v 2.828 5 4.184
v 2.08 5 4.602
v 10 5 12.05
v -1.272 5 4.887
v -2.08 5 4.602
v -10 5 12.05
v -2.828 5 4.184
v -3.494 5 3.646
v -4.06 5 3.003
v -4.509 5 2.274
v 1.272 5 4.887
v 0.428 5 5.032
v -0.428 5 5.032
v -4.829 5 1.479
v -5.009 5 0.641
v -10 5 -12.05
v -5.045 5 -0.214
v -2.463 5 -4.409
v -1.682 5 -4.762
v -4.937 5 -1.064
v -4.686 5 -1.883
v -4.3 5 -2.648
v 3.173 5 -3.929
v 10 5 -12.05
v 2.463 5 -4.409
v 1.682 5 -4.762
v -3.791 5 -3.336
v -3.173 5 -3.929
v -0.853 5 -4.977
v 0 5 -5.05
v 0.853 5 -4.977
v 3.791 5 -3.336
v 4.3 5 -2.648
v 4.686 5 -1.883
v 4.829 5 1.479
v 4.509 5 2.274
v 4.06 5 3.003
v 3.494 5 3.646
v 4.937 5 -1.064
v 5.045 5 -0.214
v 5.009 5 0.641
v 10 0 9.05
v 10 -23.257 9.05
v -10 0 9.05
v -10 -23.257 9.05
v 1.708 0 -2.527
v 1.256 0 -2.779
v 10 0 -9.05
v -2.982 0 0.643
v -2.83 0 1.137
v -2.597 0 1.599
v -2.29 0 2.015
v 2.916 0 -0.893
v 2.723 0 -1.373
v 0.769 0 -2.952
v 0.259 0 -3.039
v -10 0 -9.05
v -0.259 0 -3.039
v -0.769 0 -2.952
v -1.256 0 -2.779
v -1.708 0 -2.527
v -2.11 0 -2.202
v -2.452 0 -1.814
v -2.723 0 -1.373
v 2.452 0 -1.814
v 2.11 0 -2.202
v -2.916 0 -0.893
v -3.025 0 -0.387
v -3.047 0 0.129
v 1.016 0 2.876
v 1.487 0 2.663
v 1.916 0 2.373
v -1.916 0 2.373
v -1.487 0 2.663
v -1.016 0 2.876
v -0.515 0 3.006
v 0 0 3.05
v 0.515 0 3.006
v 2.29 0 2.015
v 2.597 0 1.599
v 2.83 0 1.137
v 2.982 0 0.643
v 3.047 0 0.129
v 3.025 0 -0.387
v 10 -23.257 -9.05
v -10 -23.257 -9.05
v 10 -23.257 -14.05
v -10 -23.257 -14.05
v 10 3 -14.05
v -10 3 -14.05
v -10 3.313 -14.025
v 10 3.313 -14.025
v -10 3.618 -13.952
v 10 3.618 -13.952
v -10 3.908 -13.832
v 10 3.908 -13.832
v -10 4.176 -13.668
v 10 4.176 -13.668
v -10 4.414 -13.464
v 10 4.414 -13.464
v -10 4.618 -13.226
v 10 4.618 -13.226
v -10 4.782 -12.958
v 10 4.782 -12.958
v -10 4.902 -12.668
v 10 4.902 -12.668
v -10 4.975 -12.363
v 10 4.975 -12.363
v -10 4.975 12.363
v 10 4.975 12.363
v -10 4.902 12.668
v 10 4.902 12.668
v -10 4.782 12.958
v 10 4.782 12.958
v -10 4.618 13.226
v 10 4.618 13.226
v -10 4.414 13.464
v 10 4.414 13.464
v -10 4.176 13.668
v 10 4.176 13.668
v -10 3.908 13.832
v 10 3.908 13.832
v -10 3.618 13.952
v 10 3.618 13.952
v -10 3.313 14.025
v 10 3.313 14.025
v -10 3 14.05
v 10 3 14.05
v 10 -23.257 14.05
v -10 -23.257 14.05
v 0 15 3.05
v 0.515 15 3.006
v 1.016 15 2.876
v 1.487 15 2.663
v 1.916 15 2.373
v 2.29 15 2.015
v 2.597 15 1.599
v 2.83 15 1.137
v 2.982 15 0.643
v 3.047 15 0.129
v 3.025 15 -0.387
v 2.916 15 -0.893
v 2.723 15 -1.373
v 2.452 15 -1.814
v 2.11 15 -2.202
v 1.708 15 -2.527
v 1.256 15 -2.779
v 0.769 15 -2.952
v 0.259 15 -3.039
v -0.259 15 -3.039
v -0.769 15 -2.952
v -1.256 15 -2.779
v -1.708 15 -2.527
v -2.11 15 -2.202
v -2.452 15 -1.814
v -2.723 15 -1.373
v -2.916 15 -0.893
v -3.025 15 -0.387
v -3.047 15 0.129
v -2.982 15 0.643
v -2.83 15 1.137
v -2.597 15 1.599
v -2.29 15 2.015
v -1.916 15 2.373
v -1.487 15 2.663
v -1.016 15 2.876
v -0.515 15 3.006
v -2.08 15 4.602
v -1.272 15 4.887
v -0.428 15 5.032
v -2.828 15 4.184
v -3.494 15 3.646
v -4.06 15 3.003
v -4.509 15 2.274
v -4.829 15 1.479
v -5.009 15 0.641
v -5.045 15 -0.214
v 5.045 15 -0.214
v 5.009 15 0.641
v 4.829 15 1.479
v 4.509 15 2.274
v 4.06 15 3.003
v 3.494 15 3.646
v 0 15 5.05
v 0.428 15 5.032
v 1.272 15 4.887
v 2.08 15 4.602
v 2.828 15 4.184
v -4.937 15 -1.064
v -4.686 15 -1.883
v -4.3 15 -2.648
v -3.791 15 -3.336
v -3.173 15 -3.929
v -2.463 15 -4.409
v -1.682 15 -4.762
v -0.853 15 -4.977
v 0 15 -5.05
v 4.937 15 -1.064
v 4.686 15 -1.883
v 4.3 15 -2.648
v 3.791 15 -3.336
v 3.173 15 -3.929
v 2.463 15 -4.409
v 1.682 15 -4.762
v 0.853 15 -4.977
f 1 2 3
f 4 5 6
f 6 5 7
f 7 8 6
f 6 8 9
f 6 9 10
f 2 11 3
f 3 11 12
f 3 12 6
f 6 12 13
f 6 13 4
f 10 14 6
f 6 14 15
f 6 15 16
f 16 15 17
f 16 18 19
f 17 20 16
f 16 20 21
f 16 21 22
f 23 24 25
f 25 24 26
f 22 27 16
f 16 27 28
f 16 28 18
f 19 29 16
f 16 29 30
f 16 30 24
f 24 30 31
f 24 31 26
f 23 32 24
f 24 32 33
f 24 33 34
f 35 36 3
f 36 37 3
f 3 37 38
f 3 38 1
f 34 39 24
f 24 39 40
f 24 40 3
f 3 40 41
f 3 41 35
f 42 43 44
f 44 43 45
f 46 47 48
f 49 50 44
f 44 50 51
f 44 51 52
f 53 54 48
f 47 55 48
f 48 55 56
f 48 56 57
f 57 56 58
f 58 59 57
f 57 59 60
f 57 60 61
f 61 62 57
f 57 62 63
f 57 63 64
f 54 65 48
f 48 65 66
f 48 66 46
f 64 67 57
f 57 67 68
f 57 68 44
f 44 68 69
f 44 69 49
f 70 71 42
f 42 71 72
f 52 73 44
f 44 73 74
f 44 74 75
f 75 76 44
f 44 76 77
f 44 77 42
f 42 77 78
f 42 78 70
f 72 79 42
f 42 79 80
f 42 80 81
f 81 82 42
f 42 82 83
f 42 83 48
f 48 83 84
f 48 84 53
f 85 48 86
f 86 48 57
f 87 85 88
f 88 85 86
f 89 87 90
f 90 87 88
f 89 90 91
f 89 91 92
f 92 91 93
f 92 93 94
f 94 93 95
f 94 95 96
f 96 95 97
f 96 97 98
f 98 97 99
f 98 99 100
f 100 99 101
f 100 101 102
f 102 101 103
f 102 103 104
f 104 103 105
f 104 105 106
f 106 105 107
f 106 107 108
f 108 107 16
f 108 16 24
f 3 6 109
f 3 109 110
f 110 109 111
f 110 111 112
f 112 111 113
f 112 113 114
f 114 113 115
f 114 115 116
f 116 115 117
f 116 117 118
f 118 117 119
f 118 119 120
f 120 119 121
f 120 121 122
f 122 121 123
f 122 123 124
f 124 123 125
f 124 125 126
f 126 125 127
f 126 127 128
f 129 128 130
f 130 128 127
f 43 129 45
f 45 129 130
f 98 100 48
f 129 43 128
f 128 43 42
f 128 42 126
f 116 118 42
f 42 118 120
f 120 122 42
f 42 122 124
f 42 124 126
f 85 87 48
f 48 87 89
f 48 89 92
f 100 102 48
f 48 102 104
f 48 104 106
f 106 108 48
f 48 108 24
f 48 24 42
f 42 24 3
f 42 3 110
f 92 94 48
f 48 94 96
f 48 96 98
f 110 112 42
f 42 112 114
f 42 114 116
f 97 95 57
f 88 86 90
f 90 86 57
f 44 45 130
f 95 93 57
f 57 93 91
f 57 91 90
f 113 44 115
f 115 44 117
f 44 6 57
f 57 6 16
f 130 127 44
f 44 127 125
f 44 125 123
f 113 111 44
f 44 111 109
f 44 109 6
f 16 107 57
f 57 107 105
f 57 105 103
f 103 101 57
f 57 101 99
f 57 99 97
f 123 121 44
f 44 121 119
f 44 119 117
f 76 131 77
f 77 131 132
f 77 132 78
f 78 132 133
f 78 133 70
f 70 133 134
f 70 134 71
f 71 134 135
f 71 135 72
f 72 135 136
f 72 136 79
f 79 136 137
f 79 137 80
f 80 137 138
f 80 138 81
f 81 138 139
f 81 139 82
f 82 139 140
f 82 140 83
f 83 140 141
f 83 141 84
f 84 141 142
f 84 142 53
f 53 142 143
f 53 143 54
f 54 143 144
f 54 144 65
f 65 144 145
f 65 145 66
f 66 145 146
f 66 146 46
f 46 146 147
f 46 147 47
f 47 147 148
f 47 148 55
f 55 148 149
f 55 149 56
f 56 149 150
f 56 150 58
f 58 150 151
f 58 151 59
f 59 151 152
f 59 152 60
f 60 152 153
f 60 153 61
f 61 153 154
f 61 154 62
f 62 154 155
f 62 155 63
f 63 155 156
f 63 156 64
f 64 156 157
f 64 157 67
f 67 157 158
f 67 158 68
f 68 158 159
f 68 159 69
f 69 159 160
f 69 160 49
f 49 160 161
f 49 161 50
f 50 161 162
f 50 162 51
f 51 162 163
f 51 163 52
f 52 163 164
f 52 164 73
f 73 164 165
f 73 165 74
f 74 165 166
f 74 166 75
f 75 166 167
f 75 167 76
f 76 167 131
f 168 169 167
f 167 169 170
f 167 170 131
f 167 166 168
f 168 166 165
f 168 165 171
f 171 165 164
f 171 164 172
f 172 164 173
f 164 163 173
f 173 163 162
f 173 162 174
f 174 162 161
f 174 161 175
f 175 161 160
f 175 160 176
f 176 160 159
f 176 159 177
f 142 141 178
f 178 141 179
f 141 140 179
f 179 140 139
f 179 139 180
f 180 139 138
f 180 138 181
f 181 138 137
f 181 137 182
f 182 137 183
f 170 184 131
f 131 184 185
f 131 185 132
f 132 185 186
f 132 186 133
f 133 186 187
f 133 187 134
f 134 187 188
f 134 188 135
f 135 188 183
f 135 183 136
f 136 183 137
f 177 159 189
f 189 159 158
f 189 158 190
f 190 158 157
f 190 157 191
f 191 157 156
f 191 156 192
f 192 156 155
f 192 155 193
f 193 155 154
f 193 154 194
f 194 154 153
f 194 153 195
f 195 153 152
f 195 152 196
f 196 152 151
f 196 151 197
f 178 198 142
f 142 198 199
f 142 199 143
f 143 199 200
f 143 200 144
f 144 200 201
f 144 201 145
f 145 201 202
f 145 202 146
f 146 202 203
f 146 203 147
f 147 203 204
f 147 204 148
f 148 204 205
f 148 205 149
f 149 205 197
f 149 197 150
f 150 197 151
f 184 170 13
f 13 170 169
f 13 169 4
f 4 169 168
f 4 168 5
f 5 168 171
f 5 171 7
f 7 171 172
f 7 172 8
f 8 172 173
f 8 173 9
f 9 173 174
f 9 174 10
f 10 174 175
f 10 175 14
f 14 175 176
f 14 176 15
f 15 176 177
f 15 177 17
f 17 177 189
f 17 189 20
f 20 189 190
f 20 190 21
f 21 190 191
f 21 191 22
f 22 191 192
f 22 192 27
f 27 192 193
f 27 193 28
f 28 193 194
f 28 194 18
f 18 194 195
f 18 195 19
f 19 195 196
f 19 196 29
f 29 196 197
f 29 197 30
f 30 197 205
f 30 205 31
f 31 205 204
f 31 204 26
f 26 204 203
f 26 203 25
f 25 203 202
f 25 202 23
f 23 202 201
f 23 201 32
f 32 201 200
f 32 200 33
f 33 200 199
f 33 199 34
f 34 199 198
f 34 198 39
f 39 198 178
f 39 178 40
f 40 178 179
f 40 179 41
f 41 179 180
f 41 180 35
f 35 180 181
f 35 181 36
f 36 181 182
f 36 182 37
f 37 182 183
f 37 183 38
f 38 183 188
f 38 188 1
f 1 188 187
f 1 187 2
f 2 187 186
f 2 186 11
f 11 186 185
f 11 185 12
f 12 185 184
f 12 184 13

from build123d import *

# Parameters (mm, degrees)
SALIENTE_EXTRUIR1_DEPTH = 10
CROQUIS2_R              = 3.05
CORTAR_EXTRUIR1_DEPTH   = 34.103958495
SALIENTE_EXTRUIR2_START = 10
CROQUIS3_R              = 5.05
CROQUIS3_R_2            = 3.05
SALIENTE_EXTRUIR2_DEPTH = 10


with BuildPart() as part:
    # Croquis1 → Saliente-Extruir1 (new, symmetric)
    with BuildSketch(Plane(origin=(0, 0, 0), x_dir=(0, 0, -1), z_dir=(1, 0, 0))):
        with BuildLine():
            Line((-9.05, 0), (9.05, 0))
            Line((9.05, 0), (9.05, -23.257203825))
            Line((9.05, -23.257203825), (14.05, -23.257203825))
            Line((14.05, -23.257203825), (14.05, 3))
            ThreePointArc((14.05, 3), (13.464213562, 4.414213562), (12.05, 5))
            Line((12.05, 5), (-12.05, 5))
            ThreePointArc((-12.05, 5), (-13.464213562, 4.414213562), (-14.05, 3))
            Line((-14.05, 3), (-14.05, -23.257203825))
            Line((-14.05, -23.257203825), (-9.05, -23.257203825))
            Line((-9.05, -23.257203825), (-9.05, 0))
        make_face()
    extrude(amount=SALIENTE_EXTRUIR1_DEPTH, both=True)

    # Croquis2 → Cortar-Extruir1 (cut, through all)
    with BuildSketch(Plane(origin=(0, 5, 0), x_dir=(1, 0, 0), z_dir=(0, 1, 0))):
        with Locations(Location((0, 0, 0), (0, 0, 270))):
            Circle(CROQUIS2_R)
    extrude(amount=-CORTAR_EXTRUIR1_DEPTH, mode=Mode.SUBTRACT)

    # Croquis3 → Saliente-Extruir2 (add)
    with BuildSketch(Plane(origin=(0, 5, 0), x_dir=(1, 0, 0), z_dir=(0, 1, 0)).offset(SALIENTE_EXTRUIR2_START)):
        with Locations(Location((0, 0, 0), (0, 0, 90))):
            Circle(CROQUIS3_R)
        with Locations(Location((0, 0, 0), (0, 0, 270))):
            Circle(CROQUIS3_R_2, mode=Mode.SUBTRACT)
    extrude(amount=-SALIENTE_EXTRUIR2_DEPTH)


solid = part.part
